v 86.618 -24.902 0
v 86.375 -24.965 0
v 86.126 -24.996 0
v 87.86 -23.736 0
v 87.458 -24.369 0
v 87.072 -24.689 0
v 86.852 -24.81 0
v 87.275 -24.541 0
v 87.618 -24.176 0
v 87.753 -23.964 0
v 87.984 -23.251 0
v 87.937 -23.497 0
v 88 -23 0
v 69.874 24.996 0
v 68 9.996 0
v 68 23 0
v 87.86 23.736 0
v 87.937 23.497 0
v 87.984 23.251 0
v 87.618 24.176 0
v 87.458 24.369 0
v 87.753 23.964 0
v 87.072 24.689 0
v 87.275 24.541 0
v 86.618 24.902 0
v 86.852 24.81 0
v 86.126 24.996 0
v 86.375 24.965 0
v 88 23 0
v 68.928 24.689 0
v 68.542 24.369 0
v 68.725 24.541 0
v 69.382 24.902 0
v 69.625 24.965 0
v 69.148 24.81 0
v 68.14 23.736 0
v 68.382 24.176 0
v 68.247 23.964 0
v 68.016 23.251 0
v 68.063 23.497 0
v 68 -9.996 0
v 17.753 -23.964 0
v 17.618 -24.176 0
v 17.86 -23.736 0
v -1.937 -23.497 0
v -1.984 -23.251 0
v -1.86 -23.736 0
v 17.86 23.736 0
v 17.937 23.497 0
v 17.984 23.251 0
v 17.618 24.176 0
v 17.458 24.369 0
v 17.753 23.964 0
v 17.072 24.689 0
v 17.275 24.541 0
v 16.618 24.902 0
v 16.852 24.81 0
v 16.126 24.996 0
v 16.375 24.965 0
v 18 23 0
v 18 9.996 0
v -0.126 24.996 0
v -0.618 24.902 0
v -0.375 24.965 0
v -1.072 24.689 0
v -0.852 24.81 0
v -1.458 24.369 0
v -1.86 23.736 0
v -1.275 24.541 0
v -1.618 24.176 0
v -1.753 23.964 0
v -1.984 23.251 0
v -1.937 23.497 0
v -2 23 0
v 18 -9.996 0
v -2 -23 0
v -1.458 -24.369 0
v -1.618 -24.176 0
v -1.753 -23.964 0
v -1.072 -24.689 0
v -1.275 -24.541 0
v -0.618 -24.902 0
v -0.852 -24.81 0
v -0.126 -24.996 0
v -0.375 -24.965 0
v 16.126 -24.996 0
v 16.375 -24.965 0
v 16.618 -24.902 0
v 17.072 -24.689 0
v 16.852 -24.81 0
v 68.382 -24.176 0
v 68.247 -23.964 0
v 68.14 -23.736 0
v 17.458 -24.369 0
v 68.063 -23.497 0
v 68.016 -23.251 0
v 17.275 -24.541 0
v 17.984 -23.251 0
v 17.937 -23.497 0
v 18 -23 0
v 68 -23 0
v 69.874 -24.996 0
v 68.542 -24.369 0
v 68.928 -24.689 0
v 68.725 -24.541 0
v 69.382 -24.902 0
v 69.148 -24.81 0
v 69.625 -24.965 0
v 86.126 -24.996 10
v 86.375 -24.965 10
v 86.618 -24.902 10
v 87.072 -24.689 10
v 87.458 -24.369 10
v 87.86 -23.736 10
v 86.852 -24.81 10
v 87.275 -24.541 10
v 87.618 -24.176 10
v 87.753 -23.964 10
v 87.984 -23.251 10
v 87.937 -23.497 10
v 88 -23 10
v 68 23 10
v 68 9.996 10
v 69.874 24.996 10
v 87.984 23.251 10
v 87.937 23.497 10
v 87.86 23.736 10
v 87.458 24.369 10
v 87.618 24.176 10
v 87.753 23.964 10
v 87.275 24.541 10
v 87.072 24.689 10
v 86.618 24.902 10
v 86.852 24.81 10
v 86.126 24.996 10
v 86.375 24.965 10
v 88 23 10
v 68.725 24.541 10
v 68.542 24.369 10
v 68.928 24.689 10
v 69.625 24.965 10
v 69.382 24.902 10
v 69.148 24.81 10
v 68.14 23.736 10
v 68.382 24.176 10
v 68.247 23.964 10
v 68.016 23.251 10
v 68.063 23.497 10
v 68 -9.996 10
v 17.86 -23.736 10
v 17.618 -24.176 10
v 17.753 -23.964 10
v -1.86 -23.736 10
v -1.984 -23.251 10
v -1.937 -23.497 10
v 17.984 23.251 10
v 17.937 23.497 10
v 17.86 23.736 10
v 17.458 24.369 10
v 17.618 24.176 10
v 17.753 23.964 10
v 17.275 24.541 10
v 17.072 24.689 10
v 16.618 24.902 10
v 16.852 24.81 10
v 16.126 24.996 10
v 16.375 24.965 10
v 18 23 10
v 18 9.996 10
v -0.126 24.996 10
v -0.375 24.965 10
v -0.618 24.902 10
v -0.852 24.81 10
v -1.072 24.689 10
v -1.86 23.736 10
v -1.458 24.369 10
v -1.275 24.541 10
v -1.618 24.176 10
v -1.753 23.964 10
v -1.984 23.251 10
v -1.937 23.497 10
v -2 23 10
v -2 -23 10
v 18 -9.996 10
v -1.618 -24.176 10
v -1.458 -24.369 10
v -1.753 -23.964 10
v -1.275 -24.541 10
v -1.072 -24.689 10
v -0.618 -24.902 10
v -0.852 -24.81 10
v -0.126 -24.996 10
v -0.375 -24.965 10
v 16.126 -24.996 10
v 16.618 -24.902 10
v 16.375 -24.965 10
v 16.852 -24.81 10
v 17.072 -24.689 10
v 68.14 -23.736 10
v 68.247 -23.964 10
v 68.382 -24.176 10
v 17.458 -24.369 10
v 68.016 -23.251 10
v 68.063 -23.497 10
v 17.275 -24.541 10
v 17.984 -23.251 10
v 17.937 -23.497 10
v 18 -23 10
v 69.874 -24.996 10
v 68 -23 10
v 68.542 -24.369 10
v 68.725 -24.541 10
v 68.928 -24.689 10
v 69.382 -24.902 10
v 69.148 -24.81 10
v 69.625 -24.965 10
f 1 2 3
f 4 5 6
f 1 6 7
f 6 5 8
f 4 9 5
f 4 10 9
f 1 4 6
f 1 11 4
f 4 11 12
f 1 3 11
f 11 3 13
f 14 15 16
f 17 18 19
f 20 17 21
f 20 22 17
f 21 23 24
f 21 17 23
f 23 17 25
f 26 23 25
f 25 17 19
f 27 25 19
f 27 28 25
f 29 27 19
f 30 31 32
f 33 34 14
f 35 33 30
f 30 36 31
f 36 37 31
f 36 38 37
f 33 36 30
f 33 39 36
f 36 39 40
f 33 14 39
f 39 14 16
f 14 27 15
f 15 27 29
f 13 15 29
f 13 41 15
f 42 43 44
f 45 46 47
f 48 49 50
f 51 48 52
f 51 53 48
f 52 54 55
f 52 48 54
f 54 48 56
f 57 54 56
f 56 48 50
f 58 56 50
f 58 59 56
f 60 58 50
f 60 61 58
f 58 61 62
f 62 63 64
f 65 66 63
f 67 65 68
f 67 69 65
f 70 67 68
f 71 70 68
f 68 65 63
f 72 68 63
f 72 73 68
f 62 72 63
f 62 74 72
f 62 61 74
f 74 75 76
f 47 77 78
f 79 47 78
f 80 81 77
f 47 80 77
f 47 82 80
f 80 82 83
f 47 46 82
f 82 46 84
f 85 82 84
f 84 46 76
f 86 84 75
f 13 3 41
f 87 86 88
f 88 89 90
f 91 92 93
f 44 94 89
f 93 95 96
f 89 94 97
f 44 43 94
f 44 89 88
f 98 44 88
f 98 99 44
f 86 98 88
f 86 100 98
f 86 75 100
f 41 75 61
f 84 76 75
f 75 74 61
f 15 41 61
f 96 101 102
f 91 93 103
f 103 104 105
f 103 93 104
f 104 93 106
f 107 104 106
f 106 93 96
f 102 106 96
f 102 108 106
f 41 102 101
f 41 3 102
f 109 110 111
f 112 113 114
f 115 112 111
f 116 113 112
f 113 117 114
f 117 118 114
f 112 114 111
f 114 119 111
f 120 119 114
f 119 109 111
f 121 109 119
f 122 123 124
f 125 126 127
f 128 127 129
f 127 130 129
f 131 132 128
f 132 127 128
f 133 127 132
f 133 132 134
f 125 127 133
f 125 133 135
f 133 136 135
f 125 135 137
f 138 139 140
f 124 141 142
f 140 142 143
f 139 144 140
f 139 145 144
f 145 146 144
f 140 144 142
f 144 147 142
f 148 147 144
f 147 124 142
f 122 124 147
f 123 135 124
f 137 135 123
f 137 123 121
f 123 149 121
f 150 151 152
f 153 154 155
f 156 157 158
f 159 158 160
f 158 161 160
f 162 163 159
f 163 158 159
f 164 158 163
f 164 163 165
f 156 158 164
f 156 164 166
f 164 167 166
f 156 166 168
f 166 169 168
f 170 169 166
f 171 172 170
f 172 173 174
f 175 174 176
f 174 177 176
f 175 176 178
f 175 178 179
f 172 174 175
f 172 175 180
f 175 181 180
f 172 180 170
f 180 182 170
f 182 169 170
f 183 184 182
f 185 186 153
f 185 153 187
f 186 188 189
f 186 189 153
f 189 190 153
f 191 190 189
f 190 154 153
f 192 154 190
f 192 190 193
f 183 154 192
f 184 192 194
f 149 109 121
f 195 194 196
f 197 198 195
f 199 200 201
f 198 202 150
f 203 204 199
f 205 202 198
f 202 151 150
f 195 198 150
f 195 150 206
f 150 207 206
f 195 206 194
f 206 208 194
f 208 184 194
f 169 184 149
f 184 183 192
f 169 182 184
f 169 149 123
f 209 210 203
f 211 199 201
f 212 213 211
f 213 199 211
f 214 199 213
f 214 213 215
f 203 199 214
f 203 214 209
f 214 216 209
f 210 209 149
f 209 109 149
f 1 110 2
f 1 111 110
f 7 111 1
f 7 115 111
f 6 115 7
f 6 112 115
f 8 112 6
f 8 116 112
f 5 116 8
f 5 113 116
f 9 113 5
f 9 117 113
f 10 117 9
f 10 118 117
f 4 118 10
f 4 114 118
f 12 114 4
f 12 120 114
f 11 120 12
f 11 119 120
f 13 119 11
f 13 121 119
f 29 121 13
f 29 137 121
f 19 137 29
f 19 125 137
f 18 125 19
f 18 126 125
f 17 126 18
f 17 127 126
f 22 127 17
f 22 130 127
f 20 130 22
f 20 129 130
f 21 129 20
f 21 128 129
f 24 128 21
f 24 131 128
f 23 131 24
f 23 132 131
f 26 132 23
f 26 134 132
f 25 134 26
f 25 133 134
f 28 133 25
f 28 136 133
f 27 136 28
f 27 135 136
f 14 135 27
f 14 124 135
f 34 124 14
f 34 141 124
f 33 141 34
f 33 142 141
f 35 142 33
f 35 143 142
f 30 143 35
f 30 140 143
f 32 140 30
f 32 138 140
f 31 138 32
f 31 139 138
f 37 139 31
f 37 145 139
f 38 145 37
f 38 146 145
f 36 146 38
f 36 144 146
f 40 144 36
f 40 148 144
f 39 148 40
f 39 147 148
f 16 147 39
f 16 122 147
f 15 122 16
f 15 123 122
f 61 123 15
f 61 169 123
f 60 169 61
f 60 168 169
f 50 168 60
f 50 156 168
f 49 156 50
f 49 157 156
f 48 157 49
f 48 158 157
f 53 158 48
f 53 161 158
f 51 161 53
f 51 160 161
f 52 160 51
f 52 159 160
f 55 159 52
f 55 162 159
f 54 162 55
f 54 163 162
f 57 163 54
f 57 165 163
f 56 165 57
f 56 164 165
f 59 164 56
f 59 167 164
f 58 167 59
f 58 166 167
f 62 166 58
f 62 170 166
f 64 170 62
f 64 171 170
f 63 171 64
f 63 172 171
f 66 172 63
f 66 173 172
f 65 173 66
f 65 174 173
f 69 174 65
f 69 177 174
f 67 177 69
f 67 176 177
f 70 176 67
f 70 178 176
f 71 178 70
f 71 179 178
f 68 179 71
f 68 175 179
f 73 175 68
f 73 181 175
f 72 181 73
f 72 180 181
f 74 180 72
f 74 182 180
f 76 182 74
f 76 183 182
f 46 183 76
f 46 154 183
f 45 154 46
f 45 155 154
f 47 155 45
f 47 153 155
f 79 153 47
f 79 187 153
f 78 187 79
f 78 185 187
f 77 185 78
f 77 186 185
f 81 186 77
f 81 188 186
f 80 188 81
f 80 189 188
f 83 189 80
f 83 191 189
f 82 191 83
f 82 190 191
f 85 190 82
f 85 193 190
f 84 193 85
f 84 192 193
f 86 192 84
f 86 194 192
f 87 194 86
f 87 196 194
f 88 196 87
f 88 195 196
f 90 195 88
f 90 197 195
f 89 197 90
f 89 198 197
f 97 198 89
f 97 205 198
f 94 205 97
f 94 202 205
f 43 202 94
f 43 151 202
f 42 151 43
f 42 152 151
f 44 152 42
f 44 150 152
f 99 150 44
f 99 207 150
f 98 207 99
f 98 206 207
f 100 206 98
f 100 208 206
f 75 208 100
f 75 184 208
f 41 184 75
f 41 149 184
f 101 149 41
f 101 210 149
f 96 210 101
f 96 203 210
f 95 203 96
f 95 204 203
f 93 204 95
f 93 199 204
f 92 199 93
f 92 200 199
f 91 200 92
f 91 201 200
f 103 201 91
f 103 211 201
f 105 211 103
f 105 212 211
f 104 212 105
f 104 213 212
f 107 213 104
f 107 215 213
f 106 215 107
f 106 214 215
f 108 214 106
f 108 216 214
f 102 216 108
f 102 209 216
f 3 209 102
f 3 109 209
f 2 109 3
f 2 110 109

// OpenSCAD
// Espresso machine float

$fn=50;
RESERVOIR_DEPTH=100;
TOLERANCE=10;
FLOAT_DEPTH=RESERVOIR_DEPTH-TOLERANCE;
FLOAT_WIDTH=20;
FLOAT_HEIGHT=10;
SMOOTH_RADIUS=2;
FLOAT_CROSSBAR=50;

module edge_smoother_2d(radius) {
    translate([-radius/2,radius/2,0]) rotate([0,0,-90])
        difference() {
            square(radius);
            circle(r=radius);
        }
}

module t_bar() {
    translate([0,-(FLOAT_WIDTH-2*SMOOTH_RADIUS)/2])
        square([FLOAT_DEPTH-2*SMOOTH_RADIUS,FLOAT_WIDTH-2*SMOOTH_RADIUS]);
    translate([0,-(FLOAT_CROSSBAR-2*SMOOTH_RADIUS)/2])
        square([FLOAT_WIDTH-2*SMOOTH_RADIUS,FLOAT_CROSSBAR-2*SMOOTH_RADIUS]);
    translate([FLOAT_DEPTH-FLOAT_WIDTH,-(FLOAT_CROSSBAR-2*SMOOTH_RADIUS)/2])
        square([FLOAT_WIDTH-2*SMOOTH_RADIUS,FLOAT_CROSSBAR-2*SMOOTH_RADIUS]);
}

module 2d_float() {
    minkowski() {
        t_bar();
        circle(SMOOTH_RADIUS);
    }
}

module 3d_float() {
    linear_extrude(FLOAT_HEIGHT)
    2d_float();
}

//t_bar();
3d_float();
